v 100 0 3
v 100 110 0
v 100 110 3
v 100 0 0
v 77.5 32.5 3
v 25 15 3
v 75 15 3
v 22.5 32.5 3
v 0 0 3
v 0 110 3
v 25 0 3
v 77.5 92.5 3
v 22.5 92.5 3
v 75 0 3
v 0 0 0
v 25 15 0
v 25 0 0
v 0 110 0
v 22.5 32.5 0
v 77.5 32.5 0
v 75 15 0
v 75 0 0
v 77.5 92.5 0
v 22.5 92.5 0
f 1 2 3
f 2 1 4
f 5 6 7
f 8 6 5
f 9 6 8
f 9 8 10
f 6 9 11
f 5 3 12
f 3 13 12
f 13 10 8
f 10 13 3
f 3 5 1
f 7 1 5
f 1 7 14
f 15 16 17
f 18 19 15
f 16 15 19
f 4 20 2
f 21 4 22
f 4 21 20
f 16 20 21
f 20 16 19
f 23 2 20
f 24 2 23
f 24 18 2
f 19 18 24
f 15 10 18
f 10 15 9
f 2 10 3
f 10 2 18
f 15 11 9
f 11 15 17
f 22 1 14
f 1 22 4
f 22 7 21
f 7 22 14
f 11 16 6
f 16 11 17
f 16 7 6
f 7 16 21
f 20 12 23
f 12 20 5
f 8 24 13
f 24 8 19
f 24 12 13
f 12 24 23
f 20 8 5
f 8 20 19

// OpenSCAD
//Este codigo es un modelo 3D del acrilico que usa Corchea: Top.


//input
//Medidas acrilico
eAc = 3; //espesor del acrilico
aAc = 100; //ancho del acrilico
lAc = 110; //largo del acrilico

//Medidas del gap de insercion
agAc = 50; //ancho del gap de insercion
lgAc = 15; //largo del gap de insercion

//Medidas de la ventana de top
aW = 55; //ancho de la ventana de top
lW = 60; //largo de la ventana de top

//output
insAc = (aAc-agAc)/2; //insercion del acrilico en Lid
yWm = (lAc-lgAc-lW)/2; //margenes de la ventana de top en y
yWt = yWm + lgAc; //traslacion de la ventana de top en y
xWm = (aAc-aW)/2; //margenes de la ventana de top en x

//Top
translate([0,0,0]) 
color("lightblue", alpha = 0.5)
difference(){
    translate([0,0,0]) 
cube([aAc,lAc,eAc]);
    translate([insAc,0,0]) 
cube([agAc,lgAc, eAc]); 
    translate([xWm,yWt,0])
cube([aW,lW,eAc]);
}  
